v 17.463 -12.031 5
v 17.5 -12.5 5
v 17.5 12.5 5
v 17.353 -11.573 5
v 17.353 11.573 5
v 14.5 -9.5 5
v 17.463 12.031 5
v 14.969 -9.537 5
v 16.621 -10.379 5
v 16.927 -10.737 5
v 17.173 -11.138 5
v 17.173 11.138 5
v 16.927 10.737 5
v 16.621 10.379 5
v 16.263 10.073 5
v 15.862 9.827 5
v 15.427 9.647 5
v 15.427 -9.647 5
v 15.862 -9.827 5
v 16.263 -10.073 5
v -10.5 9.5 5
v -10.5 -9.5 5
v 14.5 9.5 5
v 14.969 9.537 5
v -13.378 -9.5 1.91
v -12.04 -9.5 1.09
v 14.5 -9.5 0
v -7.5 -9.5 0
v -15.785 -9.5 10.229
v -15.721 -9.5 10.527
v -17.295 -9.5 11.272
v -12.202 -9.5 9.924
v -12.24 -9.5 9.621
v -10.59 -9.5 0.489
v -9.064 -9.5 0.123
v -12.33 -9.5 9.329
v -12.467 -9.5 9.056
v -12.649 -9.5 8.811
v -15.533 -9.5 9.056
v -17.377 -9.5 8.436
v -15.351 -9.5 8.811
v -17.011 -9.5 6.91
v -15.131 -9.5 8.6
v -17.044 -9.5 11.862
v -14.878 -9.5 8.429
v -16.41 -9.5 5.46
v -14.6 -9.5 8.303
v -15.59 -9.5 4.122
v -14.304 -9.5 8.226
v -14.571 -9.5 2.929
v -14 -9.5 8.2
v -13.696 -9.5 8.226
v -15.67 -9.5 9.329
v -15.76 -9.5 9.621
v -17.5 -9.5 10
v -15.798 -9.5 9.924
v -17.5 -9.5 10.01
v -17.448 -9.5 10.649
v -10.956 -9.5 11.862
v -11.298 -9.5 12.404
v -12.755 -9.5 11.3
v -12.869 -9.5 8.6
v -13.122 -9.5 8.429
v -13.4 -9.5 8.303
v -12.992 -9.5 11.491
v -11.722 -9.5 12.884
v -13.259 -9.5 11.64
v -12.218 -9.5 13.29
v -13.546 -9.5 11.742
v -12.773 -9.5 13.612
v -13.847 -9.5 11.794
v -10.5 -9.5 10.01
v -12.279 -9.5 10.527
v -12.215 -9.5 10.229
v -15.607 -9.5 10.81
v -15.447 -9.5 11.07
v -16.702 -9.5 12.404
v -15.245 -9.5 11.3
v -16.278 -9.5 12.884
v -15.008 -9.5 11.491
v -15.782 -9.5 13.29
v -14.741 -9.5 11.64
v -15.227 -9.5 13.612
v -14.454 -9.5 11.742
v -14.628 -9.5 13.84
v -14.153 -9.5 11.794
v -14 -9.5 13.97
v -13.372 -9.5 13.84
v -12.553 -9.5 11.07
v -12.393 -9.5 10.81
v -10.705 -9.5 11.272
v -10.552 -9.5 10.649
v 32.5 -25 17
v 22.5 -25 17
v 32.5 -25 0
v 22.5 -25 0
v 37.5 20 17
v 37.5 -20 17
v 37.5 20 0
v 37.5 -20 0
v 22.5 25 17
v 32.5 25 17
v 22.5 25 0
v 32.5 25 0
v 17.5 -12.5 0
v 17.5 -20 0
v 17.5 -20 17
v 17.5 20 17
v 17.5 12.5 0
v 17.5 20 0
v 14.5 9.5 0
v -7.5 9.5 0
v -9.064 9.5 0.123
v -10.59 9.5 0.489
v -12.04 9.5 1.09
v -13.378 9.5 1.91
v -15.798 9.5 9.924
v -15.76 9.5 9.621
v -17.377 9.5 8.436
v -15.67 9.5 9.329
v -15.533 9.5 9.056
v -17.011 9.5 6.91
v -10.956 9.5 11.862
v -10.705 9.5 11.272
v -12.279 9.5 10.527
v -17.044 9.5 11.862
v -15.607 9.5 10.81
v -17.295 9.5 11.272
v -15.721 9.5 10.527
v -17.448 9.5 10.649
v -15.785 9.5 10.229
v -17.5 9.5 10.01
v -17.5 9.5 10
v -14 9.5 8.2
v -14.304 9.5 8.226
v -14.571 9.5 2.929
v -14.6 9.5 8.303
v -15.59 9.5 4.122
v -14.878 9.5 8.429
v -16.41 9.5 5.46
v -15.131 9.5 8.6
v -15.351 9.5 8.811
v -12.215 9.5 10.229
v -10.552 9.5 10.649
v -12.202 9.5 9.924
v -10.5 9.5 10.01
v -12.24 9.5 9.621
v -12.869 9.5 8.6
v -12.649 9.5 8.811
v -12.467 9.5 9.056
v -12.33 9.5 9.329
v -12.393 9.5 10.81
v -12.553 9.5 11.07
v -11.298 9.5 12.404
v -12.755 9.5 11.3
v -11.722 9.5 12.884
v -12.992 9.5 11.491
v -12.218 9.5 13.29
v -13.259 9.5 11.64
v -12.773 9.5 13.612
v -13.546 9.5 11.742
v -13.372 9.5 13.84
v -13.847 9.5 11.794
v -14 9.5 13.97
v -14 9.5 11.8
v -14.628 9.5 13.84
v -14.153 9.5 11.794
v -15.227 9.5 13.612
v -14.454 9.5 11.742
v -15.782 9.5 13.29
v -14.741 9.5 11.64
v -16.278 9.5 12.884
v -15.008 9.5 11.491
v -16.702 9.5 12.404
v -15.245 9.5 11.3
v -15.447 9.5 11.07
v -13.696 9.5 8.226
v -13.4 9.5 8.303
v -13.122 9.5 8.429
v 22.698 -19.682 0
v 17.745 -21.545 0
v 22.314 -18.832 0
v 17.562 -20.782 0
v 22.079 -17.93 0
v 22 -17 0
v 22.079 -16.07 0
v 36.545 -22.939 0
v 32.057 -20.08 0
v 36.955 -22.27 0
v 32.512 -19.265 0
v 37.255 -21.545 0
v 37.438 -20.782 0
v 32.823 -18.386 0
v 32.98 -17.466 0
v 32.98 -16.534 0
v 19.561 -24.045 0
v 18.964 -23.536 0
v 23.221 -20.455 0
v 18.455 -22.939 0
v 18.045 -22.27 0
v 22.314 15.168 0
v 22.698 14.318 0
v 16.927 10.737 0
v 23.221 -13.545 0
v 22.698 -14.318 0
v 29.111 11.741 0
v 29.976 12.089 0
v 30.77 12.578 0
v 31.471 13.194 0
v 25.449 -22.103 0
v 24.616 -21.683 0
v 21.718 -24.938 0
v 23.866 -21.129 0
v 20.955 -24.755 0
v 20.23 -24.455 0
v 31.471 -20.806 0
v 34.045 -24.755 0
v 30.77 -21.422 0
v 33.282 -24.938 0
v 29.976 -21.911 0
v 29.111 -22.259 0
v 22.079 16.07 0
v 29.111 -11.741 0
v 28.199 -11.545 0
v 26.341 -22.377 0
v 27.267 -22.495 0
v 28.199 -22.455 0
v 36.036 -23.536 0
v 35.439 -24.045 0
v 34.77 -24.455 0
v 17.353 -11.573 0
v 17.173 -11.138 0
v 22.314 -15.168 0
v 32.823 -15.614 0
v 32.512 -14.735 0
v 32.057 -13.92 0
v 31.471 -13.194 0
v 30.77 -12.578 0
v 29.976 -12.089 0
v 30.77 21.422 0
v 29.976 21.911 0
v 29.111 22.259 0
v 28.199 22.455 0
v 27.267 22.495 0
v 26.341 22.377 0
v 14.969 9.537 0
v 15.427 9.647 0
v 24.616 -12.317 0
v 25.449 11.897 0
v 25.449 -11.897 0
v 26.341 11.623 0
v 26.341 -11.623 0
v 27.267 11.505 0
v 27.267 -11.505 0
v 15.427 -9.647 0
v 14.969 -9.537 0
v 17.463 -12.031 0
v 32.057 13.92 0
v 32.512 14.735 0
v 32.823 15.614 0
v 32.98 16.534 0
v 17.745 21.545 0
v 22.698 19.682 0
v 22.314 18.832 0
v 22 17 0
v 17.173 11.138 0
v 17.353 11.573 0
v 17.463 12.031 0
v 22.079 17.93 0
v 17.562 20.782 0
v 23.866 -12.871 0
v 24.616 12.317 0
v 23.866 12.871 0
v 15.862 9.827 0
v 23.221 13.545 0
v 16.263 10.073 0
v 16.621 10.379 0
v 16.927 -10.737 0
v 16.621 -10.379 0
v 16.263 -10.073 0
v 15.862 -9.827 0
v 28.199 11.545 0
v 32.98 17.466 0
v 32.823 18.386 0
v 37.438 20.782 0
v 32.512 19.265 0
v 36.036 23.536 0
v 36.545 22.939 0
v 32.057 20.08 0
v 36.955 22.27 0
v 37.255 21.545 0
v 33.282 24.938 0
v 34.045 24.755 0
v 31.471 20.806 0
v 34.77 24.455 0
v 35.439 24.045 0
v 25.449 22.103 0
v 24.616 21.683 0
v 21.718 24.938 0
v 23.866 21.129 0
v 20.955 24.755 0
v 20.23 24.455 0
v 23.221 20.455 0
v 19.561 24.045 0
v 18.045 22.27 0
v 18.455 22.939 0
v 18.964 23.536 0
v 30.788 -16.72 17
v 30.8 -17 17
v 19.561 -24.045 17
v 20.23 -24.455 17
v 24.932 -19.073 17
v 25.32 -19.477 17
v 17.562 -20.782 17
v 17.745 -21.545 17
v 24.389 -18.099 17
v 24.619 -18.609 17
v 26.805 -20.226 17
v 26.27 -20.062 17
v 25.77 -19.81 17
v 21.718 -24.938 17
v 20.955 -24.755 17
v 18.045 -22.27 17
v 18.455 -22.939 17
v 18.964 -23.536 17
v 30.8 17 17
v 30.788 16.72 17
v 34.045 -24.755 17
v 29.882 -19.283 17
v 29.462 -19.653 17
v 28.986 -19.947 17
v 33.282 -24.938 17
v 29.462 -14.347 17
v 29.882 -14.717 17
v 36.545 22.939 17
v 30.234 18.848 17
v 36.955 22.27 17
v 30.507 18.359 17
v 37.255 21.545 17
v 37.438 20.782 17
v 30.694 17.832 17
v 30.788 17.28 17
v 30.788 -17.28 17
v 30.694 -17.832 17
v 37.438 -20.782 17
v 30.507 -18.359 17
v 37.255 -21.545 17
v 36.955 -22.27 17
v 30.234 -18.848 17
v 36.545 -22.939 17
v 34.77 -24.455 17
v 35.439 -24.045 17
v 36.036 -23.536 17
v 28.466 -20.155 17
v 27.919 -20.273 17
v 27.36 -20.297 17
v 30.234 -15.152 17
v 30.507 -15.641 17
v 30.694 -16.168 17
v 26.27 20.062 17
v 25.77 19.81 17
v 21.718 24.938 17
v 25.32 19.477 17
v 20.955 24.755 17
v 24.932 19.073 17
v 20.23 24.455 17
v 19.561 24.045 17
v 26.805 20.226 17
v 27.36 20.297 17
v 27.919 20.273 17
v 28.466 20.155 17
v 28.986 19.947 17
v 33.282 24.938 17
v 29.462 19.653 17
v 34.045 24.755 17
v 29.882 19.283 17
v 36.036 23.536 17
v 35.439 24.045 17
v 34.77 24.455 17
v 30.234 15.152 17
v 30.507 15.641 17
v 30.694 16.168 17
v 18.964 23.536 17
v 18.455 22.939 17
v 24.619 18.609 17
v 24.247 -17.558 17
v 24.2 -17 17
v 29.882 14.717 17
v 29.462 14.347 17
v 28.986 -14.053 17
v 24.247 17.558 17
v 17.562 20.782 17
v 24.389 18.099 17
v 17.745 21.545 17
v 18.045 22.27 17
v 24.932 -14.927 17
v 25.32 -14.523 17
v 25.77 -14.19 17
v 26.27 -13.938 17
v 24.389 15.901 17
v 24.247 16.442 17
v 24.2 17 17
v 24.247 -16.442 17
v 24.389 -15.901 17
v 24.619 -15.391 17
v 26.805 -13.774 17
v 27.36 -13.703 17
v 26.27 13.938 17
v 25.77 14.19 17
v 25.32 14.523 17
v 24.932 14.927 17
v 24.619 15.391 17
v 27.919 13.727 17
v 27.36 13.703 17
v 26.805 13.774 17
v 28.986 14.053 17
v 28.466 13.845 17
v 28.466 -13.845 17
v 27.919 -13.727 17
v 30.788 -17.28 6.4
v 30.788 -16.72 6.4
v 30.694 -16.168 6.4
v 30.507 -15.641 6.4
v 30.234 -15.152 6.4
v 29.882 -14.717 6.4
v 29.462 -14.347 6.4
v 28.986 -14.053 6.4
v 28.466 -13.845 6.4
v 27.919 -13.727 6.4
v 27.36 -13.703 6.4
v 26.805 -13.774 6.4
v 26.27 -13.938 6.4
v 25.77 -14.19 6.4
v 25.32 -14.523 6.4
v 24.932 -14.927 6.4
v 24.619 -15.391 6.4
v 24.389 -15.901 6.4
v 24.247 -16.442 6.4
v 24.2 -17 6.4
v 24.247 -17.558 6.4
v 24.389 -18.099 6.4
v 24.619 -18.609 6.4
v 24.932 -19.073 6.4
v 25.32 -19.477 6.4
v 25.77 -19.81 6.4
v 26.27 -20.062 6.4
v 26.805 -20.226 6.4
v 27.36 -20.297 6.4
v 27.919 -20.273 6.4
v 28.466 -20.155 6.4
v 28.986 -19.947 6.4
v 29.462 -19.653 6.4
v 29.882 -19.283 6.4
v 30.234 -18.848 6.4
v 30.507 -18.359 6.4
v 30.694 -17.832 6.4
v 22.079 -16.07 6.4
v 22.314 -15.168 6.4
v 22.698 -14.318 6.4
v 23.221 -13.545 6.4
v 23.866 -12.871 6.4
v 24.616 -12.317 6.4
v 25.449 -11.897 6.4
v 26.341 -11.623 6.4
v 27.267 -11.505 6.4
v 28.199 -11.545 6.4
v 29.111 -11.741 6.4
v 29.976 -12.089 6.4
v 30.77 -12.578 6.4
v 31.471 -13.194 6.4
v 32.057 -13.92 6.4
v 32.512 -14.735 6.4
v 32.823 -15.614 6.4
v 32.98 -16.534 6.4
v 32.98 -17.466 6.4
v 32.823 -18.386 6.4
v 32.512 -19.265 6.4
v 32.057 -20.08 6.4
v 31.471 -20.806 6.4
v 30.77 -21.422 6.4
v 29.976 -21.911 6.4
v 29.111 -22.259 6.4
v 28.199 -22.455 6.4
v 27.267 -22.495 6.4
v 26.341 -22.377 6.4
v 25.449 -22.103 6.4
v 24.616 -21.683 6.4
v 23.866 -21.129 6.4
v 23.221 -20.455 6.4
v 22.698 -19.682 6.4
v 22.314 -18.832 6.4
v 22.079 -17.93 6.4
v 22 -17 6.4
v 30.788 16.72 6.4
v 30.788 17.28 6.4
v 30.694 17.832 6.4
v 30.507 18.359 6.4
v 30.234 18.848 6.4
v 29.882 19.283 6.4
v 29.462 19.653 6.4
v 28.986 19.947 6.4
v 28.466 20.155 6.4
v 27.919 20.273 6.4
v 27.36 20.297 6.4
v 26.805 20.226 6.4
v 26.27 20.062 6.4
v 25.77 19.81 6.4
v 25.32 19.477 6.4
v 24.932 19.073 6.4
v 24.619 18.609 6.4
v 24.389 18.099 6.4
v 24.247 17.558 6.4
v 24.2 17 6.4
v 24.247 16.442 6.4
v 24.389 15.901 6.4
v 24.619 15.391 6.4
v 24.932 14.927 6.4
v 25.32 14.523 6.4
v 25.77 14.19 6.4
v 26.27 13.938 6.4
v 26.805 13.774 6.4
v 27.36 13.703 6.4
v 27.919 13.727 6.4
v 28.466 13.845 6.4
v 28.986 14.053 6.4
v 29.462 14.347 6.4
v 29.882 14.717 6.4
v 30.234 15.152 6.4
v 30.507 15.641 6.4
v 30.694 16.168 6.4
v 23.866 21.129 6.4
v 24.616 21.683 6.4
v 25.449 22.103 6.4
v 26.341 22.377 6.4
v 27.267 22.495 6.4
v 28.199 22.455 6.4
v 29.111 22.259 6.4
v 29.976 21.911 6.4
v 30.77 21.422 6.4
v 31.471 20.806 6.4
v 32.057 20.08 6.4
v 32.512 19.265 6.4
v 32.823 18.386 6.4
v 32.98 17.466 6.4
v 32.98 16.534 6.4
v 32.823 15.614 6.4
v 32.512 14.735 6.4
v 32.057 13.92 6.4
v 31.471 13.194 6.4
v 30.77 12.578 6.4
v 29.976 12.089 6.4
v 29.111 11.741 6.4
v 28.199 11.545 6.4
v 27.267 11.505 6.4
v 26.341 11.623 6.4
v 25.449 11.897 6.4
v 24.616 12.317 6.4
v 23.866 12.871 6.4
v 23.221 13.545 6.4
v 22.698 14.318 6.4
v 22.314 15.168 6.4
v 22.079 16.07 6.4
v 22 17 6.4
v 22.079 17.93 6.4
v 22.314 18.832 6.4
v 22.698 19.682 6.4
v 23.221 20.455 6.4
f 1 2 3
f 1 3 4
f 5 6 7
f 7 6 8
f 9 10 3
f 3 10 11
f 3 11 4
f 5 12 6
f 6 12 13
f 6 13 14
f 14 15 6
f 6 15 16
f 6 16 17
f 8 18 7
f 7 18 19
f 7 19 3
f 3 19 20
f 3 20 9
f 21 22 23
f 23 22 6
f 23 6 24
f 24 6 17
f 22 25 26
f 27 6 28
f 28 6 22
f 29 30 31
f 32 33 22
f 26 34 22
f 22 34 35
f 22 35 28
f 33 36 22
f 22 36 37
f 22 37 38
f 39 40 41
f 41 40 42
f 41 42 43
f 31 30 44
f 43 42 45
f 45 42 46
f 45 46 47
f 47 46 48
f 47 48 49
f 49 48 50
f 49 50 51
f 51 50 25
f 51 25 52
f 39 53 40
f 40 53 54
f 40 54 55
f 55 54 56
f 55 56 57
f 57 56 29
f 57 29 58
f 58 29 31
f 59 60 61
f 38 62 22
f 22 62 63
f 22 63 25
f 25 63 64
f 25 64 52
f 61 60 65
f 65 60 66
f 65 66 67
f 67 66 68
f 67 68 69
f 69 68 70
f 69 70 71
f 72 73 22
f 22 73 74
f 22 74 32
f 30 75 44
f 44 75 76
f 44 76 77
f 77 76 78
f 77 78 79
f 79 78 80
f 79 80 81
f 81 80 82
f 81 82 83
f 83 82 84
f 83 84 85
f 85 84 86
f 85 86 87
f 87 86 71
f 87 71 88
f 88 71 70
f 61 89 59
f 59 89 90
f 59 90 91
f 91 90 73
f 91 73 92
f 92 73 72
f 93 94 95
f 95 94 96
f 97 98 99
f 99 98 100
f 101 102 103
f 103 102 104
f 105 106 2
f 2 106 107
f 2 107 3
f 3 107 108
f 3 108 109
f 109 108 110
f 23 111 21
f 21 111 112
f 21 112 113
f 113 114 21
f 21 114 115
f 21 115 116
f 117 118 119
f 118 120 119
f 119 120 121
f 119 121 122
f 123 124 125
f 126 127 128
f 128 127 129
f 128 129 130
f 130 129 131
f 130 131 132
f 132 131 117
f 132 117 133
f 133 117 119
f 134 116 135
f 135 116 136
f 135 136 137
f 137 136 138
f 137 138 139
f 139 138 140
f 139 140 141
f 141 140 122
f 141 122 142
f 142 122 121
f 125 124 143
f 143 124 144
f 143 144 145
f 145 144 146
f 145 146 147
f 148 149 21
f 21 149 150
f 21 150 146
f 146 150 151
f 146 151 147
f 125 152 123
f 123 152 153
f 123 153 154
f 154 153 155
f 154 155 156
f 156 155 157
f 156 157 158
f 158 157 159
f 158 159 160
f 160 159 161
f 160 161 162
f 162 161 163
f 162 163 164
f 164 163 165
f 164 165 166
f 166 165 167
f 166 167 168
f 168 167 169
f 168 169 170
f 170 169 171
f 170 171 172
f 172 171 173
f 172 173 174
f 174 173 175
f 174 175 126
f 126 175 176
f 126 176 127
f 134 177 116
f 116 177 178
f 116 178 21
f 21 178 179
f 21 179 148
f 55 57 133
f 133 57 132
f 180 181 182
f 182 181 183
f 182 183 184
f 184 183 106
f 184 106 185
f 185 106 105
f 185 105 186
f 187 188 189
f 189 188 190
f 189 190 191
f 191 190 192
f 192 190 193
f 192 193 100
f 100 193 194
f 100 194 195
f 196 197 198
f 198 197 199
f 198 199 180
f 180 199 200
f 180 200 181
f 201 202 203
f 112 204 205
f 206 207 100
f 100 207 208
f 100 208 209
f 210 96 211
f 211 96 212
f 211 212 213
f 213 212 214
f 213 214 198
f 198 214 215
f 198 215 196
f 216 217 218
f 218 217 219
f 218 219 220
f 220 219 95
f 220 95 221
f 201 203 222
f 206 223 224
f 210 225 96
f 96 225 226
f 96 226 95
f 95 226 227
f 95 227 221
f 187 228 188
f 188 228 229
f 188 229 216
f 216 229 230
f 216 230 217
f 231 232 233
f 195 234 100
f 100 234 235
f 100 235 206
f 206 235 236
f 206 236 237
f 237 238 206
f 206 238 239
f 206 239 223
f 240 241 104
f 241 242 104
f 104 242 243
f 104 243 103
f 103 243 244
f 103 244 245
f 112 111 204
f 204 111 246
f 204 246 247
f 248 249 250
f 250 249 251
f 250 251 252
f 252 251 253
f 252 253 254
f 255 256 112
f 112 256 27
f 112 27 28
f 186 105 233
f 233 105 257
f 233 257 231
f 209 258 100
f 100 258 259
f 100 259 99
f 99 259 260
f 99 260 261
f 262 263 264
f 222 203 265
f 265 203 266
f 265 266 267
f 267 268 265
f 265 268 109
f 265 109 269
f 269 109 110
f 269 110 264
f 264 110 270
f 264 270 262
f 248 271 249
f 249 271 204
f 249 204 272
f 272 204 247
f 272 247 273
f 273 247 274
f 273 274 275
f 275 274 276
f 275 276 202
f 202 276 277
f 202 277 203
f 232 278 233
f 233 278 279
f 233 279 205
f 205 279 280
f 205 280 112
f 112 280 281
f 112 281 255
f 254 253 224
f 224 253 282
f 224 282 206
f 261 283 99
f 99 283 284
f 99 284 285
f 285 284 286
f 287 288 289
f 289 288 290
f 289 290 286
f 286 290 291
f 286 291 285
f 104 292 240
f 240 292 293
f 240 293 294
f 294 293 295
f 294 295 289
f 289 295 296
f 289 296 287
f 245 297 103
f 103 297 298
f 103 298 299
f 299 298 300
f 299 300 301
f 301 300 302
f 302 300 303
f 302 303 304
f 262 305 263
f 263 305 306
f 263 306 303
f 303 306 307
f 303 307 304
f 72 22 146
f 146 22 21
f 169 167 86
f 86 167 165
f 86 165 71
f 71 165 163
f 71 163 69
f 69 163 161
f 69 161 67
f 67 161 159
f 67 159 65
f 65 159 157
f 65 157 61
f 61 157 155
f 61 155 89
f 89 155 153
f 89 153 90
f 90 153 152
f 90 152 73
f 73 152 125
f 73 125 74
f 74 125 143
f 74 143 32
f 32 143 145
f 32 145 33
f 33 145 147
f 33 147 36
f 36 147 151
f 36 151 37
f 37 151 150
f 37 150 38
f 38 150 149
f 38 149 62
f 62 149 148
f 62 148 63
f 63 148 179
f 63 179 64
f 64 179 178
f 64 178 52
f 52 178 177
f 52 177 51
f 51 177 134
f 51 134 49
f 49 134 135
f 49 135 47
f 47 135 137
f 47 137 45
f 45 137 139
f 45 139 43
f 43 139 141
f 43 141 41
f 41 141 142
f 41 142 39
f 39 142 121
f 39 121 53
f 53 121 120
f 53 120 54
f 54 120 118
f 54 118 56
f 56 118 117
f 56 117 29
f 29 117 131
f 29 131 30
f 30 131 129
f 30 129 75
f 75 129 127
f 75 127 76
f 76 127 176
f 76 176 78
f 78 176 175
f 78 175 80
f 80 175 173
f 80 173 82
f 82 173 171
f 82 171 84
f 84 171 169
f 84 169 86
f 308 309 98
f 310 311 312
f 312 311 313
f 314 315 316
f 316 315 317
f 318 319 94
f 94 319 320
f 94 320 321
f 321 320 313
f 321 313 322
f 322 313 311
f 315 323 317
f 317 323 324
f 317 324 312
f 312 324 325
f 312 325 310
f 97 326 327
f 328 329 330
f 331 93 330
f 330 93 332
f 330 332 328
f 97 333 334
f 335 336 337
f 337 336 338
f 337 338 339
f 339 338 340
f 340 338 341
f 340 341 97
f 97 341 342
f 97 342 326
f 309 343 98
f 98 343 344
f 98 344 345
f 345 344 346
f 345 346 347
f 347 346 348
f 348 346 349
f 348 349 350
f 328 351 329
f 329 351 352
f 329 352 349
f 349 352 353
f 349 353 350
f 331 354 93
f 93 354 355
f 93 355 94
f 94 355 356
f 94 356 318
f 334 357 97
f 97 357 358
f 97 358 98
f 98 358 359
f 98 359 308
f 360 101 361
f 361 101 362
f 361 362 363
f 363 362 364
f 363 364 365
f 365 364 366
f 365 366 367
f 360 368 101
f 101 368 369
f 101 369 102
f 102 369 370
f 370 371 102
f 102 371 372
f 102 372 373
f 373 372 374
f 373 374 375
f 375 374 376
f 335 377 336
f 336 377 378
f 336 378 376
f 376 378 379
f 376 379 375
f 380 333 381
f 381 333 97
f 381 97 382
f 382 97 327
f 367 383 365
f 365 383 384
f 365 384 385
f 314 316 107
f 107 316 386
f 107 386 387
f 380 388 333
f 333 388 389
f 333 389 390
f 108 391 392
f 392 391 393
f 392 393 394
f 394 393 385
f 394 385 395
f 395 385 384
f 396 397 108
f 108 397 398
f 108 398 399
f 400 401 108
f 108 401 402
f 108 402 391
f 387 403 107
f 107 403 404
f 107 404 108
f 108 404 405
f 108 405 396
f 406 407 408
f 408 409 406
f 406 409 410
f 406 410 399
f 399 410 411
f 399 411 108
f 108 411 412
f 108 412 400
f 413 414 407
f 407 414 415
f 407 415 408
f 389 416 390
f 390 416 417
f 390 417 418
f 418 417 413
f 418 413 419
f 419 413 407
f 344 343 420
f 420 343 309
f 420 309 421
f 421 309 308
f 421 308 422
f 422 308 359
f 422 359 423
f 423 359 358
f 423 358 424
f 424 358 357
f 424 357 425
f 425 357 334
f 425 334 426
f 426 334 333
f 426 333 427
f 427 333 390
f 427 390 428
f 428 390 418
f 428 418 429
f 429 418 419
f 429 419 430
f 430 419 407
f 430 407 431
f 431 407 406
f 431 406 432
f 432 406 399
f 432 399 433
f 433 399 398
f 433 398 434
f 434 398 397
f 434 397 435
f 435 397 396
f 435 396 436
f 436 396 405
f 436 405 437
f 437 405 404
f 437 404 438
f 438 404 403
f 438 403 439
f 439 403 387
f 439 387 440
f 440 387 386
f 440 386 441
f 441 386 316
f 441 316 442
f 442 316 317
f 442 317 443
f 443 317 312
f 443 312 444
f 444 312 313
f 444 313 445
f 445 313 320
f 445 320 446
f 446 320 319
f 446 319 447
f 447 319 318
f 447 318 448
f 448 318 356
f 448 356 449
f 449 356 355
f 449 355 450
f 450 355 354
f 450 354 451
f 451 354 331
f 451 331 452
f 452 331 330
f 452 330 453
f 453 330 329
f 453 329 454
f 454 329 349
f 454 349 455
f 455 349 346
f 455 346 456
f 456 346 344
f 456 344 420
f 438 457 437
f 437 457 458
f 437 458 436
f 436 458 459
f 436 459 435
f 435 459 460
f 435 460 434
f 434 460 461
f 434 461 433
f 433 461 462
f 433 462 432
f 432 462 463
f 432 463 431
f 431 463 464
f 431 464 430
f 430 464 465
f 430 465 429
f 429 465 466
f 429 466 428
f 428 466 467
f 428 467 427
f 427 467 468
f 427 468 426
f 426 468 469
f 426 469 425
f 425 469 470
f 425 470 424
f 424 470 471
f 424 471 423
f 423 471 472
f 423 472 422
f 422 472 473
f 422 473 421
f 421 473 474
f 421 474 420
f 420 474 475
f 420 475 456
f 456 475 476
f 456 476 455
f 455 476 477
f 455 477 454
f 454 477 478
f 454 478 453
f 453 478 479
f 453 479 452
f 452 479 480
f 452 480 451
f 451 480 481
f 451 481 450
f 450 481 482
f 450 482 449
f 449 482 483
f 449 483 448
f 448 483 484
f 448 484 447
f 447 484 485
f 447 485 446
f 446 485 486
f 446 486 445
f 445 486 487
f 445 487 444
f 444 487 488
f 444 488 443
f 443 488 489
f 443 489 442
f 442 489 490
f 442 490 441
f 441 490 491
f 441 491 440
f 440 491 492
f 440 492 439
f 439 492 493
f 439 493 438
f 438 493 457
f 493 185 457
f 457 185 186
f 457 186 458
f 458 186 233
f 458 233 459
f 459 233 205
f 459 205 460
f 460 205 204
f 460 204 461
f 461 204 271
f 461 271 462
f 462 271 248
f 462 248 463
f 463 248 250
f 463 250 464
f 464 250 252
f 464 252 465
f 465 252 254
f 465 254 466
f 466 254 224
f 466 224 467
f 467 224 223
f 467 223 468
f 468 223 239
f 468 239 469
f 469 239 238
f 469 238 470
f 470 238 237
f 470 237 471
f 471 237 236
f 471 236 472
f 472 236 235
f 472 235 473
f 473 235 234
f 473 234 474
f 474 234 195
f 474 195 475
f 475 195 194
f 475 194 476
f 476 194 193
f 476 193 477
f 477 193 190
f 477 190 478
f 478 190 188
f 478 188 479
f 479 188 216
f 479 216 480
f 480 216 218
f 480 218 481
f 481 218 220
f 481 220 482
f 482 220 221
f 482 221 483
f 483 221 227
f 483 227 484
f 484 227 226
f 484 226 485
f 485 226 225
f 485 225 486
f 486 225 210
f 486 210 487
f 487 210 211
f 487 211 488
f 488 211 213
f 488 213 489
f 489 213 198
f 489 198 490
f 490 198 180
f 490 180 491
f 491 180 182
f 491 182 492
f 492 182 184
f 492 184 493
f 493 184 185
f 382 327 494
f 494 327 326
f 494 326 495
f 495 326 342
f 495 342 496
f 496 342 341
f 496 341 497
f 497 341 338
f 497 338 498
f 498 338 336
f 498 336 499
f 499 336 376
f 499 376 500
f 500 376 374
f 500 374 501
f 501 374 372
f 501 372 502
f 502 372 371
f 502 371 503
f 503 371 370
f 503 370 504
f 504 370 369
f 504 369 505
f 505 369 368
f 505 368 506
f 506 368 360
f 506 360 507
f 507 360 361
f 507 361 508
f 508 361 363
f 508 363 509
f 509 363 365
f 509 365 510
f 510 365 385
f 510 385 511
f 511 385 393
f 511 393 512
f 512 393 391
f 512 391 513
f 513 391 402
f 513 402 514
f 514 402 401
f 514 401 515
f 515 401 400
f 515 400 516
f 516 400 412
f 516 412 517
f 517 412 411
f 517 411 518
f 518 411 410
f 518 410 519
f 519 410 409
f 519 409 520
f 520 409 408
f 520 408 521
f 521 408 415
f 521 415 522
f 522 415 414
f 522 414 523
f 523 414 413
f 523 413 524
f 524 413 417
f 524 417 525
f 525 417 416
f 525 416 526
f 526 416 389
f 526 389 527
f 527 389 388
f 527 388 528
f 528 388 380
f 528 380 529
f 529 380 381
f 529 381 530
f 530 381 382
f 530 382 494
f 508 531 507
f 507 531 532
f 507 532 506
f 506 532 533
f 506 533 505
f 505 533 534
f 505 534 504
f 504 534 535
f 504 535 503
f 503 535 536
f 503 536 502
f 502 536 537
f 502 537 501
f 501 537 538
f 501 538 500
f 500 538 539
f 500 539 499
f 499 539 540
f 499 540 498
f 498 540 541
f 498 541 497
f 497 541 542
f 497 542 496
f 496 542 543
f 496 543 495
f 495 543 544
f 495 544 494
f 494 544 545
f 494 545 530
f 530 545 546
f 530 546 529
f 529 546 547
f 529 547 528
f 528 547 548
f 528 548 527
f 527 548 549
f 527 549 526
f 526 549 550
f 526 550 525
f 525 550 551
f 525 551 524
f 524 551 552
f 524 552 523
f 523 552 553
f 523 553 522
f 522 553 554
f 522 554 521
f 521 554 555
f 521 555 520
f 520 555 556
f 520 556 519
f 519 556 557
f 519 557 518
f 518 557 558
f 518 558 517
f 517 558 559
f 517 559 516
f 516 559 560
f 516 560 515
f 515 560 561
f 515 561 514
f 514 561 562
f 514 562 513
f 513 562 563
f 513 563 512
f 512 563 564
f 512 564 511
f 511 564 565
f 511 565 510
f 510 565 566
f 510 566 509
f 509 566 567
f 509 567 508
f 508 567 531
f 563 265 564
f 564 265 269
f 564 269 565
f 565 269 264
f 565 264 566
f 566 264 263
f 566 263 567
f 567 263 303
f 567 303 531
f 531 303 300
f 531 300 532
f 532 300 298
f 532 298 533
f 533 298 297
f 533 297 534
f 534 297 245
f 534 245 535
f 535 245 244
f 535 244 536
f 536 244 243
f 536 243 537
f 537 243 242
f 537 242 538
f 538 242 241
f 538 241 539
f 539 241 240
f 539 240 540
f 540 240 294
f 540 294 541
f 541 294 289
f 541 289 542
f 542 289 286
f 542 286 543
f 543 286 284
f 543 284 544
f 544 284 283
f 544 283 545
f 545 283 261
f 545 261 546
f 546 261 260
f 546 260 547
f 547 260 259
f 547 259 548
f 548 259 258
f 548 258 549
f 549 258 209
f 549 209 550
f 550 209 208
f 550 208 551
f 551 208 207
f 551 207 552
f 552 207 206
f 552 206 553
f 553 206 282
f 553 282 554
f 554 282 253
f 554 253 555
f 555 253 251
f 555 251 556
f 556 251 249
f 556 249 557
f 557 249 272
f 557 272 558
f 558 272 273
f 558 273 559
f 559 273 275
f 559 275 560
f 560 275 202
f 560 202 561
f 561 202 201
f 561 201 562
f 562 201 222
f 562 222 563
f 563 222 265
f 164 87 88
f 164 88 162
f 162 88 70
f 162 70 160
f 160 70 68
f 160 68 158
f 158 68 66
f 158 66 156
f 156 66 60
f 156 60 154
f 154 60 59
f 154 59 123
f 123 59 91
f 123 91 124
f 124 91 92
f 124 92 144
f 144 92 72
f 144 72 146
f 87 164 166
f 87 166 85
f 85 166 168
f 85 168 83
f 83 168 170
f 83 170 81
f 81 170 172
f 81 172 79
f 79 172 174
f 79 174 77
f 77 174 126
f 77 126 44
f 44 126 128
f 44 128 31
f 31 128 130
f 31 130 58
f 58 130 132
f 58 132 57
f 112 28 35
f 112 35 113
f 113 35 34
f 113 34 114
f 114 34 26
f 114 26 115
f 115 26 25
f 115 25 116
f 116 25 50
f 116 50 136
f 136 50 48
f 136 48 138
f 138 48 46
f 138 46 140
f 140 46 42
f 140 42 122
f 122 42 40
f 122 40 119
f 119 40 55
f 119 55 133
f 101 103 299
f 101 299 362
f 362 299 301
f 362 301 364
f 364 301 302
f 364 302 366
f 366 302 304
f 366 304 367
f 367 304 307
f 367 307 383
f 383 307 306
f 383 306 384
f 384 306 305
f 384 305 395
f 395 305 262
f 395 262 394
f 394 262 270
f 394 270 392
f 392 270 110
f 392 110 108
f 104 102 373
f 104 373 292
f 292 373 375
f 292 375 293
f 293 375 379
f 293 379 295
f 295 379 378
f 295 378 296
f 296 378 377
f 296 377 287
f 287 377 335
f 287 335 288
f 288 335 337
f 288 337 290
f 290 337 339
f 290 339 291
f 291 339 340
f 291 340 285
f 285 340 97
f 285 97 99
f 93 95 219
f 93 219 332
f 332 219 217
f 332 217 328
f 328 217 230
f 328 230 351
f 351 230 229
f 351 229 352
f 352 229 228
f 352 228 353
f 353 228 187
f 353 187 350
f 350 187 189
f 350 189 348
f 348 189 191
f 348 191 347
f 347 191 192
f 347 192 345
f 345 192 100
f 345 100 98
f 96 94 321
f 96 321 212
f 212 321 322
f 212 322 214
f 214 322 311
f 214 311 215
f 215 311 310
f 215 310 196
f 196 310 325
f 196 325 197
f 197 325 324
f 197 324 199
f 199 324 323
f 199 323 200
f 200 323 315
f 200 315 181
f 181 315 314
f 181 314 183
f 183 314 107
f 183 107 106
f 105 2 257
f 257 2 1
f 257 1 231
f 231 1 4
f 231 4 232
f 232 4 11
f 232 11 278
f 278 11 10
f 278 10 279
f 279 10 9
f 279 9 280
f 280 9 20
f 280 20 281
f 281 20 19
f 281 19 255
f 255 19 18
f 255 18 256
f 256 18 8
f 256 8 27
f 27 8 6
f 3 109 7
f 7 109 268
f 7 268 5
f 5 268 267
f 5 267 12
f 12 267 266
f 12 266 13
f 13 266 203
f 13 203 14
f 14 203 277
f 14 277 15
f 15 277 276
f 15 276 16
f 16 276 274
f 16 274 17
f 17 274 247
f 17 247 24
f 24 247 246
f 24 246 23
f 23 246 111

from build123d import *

# Parameters (mm, degrees)
BASE_SKETCH_W           = 35
BASE_SKETCH_H           = 19
BASE_DEPTH              = 5
HINGE_SKETCH_W          = 7
HINGE_SKETCH_H          = 19
HINGE_BODY_DEPTH        = 9
HINGE_HOLE_D            = 3.6
DOOR_BODY_SKETCH_W      = 20
DOOR_BODY_SKETCH_H      = 50
DOOR_BODY_DEPTH         = 12
DOOR_SCREWS_D           = 6.6
DOOR_SCREWS_CBORE_D     = 11
DOOR_SCREWS_CBORE_DEPTH = 6.4
HINGE_ROUND_R           = 3.99
HINGE_BODY_ROUND_R      = 10
DOOR_CORNERS_ROUND_R    = 5
DOOR_BODY_LINE_R        = 3


with BuildPart() as part:
    # Base sketch → Base (new body)
    with BuildSketch(Plane.XY):
        Rectangle(BASE_SKETCH_W, BASE_SKETCH_H)
        Polygon((17.5, 25), (17.5, 9.5), (17.5, -9.5), (17.5, -25), (37.5, -25), (37.5, 25), align=None)
    extrude(amount=BASE_DEPTH)

    # Hinge sketch → Hinge body (add)
    with BuildSketch(Plane.XY.offset(5)):
        with Locations((-14, 0)):
            Rectangle(HINGE_SKETCH_W, HINGE_SKETCH_H)
    extrude(amount=HINGE_BODY_DEPTH)

    # Hinge hole (through all)
    with Locations(Plane(origin=(0, -9.5, 0), x_dir=(-1, 0, 0), z_dir=(0, -1, 0))):
        with Locations((14, -10)):
            Hole(HINGE_HOLE_D / 2)

    # Door body sketch → Door body (add)
    with BuildSketch(Plane.XY.offset(5)):
        with Locations((27.5, 0)):
            Rectangle(DOOR_BODY_SKETCH_W, DOOR_BODY_SKETCH_H)
    extrude(amount=DOOR_BODY_DEPTH)

    # Door screws (through all)
    with Locations(Plane(origin=(0, 0, 0), x_dir=(-1, 0, 0), z_dir=(0, 0, -1))):
        with Locations((-27.5, 17), (-27.5, -17)):
            CounterBoreHole(DOOR_SCREWS_D / 2, DOOR_SCREWS_CBORE_D / 2, DOOR_SCREWS_CBORE_DEPTH)

    # Hinge round
    # the kernel refuses this fillet: 3.99 mm, written as the material it takes off along each edge
    with BuildSketch(Plane(origin=(-17.5, -19.475, 14), x_dir=(0, 0, -1), z_dir=(0, 1, 0)), Plane(origin=(-10.5, 19.475, 14), x_dir=(0, 0, -1), z_dir=(0, -1, 0))) as hinge_round_piece_1:
        with BuildLine():
            CenterArc((HINGE_ROUND_R, -HINGE_ROUND_R), HINGE_ROUND_R, 90, 90)
            Line((0, -HINGE_ROUND_R), (0, 0))
            Line((0, 0), (HINGE_ROUND_R, 0))
        make_face()
    extrude(amount=38.95, mode=Mode.SUBTRACT)

    # Hinge body round
    hinge_body_round_edges = [part.edges().sort_by_distance(p)[0] for p in [
        (-17.5, 0, 0),
    ]]
    fillet(hinge_body_round_edges, radius=HINGE_BODY_ROUND_R)

    # Door corners round
    door_corners_round_edges = [part.edges().sort_by_distance(p)[0] for p in [
        (17.5, 25, 8.5),
        (37.5, 25, 8.5),
        (37.5, -25, 8.5),
        (17.5, -25, 8.5),
    ]]
    fillet(door_corners_round_edges, radius=DOOR_CORNERS_ROUND_R)

    # Door body line
    door_body_line_edges = [part.edges().sort_by_distance(p)[0] for p in [
        (17.5, 9.5, 2.5),
        (17.5, -9.5, 2.5),
    ]]
    fillet(door_body_line_edges, radius=DOOR_BODY_LINE_R)


solid = part.part
